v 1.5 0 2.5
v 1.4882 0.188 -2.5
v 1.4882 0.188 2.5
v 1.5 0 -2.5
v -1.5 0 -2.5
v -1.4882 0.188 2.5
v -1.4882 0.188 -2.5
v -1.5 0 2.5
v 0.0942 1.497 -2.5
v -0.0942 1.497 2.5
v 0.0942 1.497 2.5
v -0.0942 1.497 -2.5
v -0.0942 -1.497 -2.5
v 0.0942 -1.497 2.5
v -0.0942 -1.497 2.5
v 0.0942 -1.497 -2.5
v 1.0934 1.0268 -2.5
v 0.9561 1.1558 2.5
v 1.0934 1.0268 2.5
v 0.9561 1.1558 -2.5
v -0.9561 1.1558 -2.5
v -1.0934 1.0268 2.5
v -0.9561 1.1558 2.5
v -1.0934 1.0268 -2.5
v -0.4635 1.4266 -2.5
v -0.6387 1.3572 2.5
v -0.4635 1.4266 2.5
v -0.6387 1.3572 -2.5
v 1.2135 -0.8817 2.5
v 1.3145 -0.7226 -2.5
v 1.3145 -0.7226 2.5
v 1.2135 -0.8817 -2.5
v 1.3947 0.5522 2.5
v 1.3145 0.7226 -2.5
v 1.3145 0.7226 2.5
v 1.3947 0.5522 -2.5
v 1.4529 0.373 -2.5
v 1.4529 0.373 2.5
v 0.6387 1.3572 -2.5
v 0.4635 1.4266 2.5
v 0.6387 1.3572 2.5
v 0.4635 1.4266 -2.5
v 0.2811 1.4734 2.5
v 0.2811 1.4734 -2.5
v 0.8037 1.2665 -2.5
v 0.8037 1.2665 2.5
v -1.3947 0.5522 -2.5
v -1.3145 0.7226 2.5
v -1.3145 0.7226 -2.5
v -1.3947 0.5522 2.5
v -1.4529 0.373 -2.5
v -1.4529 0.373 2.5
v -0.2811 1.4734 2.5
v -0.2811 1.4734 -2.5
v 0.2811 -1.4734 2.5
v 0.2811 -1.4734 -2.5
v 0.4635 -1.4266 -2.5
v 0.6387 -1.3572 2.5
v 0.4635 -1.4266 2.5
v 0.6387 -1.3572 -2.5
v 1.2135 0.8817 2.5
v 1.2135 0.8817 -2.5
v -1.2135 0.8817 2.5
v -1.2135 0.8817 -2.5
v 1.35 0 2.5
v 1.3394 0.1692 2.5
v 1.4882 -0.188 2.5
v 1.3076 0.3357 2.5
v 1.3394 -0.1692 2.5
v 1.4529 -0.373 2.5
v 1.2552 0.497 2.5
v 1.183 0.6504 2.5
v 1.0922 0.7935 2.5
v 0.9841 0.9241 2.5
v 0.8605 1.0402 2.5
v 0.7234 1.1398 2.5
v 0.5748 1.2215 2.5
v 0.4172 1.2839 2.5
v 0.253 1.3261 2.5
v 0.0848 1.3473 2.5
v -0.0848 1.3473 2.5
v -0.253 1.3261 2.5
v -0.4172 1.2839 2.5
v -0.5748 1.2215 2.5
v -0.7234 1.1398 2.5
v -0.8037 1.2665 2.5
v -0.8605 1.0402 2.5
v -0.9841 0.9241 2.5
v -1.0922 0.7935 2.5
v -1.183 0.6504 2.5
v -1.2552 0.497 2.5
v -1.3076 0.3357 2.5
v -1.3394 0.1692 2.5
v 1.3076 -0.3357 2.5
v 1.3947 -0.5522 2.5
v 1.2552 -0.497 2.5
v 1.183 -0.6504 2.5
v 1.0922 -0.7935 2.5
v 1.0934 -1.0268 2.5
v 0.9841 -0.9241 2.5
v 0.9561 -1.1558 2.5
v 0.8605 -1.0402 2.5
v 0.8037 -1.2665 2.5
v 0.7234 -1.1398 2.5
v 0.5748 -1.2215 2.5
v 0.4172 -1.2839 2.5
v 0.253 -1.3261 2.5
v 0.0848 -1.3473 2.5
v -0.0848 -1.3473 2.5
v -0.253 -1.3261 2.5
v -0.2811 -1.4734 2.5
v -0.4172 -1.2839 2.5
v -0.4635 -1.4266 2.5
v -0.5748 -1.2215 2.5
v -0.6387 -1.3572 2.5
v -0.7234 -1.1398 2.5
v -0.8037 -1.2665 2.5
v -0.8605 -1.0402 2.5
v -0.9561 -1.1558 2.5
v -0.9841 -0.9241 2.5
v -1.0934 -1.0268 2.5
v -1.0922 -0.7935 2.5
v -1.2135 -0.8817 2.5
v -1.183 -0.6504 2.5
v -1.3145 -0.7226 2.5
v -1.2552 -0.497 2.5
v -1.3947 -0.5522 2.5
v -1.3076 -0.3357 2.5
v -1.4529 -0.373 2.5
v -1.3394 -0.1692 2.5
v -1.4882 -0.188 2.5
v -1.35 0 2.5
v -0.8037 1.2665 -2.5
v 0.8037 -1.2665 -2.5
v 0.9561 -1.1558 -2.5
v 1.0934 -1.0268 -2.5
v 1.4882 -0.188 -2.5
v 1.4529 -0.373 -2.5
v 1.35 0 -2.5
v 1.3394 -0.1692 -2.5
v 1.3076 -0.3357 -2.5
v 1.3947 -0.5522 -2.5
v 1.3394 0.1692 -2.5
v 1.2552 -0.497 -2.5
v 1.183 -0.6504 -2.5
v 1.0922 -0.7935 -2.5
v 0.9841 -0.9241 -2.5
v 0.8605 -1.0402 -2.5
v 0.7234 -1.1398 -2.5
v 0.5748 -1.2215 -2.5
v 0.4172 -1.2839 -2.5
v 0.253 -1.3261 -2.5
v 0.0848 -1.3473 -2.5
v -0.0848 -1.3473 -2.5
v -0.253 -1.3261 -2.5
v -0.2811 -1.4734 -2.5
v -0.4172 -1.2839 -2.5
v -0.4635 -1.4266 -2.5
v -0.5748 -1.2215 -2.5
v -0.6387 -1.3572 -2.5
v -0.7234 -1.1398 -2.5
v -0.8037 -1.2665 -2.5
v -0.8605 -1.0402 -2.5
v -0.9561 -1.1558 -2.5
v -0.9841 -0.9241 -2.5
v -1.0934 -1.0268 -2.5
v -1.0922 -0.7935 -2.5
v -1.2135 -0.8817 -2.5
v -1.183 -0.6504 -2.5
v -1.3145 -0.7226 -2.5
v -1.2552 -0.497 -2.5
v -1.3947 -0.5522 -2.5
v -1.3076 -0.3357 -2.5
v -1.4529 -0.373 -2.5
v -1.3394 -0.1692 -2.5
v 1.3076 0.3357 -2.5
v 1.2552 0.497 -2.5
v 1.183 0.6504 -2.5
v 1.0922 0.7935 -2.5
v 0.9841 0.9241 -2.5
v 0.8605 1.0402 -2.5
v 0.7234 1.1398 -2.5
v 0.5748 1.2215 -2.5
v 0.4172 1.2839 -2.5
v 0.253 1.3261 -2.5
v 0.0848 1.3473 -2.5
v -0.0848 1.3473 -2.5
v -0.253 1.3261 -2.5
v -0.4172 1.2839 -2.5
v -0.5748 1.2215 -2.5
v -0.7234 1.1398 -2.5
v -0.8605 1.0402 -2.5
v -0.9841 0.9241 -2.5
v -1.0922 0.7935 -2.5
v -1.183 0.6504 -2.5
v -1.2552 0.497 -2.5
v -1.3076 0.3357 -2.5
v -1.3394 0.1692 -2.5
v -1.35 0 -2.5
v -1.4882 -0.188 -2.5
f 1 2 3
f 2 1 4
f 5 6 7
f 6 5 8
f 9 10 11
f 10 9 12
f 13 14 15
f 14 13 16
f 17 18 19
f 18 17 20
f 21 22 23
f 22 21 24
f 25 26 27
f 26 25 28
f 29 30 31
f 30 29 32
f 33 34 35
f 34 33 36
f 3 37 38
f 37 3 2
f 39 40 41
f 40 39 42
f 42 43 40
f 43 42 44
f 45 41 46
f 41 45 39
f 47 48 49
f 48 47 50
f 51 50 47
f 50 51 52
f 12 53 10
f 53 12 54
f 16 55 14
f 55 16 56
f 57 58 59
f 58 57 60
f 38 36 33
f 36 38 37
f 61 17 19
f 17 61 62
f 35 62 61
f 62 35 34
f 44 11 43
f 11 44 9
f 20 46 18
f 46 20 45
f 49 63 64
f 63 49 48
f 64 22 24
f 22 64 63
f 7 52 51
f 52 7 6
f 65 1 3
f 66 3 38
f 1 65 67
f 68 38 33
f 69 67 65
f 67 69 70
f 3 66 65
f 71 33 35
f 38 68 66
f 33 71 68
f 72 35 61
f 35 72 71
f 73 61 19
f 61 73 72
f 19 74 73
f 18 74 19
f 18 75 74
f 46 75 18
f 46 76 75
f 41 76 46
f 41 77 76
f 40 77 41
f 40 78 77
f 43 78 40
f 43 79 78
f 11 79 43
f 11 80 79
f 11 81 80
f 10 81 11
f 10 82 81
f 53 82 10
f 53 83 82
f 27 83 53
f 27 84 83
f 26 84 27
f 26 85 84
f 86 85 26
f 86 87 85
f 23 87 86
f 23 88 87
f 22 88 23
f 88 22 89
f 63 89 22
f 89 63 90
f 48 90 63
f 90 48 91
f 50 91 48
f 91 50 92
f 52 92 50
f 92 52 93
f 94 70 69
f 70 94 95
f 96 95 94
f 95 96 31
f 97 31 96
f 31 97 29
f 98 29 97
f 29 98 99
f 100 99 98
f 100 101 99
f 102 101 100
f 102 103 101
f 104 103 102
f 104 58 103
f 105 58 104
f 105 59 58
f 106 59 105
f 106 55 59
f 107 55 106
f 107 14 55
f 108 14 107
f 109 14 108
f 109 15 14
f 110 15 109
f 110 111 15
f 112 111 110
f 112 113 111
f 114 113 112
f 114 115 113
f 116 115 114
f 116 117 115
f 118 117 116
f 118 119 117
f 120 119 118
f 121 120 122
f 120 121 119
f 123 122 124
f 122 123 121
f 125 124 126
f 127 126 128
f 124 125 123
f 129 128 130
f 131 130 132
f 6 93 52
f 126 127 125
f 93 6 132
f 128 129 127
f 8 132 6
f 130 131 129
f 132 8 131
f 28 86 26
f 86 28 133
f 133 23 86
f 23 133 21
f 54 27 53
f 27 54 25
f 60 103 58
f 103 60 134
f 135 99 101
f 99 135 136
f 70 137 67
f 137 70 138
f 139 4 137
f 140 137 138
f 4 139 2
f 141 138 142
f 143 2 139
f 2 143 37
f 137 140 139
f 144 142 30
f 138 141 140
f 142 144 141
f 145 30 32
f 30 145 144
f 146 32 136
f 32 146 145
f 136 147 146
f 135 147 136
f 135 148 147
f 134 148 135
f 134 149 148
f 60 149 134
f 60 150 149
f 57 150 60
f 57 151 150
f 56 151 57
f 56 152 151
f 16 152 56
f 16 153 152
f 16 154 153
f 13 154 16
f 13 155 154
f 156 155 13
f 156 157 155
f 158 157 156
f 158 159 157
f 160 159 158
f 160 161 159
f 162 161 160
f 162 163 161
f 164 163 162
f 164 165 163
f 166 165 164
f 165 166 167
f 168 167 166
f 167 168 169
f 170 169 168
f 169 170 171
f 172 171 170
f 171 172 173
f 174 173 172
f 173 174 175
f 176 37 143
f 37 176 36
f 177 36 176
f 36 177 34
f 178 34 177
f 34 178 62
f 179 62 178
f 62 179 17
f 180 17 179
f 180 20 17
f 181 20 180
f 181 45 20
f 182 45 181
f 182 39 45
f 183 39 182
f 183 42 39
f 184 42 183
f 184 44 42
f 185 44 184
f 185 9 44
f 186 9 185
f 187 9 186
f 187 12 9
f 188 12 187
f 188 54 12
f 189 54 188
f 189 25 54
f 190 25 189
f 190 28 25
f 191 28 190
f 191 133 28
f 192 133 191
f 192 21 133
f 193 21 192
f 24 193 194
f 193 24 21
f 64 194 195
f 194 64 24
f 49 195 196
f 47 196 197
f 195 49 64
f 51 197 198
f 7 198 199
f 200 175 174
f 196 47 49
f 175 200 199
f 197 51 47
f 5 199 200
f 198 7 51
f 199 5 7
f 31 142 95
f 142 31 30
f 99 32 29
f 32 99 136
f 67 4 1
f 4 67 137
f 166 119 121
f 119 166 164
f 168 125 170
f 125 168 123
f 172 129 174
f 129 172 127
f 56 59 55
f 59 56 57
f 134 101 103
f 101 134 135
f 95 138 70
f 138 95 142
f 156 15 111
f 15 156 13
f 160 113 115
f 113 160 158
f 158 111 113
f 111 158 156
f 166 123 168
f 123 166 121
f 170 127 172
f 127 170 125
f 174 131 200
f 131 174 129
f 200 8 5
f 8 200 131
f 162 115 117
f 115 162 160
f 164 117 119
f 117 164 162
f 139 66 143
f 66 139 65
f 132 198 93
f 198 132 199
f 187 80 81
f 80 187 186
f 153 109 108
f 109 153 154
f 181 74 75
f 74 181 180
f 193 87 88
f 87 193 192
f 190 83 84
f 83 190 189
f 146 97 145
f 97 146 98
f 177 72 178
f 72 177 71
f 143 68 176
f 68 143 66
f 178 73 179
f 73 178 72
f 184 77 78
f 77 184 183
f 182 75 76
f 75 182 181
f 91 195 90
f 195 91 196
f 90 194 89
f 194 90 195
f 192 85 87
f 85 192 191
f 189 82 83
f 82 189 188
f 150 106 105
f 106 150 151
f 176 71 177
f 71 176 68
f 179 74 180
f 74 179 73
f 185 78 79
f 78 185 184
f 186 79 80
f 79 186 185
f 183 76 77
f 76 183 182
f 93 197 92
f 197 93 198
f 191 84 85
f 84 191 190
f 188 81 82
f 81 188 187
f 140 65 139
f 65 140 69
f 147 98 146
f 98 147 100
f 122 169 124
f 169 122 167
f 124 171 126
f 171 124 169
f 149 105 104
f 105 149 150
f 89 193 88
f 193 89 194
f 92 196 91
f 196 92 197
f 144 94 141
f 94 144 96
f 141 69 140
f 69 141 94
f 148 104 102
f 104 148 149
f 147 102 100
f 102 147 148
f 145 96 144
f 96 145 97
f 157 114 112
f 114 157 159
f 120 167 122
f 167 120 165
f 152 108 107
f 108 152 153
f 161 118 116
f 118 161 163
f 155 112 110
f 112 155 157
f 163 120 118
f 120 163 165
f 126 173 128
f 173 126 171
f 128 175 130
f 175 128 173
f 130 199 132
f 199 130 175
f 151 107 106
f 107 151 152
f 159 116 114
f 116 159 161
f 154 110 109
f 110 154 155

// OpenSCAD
$fn = 50;


difference() {
	union() {
		translate(v = [0, 0, -2.5000000000]) {
			cylinder(h = 5, r = 1.5000000000);
		}
	}
	union() {
		translate(v = [0, 0, -100.0000000000]) {
			cylinder(h = 200, r = 1.3500000000);
		}
	}
}
